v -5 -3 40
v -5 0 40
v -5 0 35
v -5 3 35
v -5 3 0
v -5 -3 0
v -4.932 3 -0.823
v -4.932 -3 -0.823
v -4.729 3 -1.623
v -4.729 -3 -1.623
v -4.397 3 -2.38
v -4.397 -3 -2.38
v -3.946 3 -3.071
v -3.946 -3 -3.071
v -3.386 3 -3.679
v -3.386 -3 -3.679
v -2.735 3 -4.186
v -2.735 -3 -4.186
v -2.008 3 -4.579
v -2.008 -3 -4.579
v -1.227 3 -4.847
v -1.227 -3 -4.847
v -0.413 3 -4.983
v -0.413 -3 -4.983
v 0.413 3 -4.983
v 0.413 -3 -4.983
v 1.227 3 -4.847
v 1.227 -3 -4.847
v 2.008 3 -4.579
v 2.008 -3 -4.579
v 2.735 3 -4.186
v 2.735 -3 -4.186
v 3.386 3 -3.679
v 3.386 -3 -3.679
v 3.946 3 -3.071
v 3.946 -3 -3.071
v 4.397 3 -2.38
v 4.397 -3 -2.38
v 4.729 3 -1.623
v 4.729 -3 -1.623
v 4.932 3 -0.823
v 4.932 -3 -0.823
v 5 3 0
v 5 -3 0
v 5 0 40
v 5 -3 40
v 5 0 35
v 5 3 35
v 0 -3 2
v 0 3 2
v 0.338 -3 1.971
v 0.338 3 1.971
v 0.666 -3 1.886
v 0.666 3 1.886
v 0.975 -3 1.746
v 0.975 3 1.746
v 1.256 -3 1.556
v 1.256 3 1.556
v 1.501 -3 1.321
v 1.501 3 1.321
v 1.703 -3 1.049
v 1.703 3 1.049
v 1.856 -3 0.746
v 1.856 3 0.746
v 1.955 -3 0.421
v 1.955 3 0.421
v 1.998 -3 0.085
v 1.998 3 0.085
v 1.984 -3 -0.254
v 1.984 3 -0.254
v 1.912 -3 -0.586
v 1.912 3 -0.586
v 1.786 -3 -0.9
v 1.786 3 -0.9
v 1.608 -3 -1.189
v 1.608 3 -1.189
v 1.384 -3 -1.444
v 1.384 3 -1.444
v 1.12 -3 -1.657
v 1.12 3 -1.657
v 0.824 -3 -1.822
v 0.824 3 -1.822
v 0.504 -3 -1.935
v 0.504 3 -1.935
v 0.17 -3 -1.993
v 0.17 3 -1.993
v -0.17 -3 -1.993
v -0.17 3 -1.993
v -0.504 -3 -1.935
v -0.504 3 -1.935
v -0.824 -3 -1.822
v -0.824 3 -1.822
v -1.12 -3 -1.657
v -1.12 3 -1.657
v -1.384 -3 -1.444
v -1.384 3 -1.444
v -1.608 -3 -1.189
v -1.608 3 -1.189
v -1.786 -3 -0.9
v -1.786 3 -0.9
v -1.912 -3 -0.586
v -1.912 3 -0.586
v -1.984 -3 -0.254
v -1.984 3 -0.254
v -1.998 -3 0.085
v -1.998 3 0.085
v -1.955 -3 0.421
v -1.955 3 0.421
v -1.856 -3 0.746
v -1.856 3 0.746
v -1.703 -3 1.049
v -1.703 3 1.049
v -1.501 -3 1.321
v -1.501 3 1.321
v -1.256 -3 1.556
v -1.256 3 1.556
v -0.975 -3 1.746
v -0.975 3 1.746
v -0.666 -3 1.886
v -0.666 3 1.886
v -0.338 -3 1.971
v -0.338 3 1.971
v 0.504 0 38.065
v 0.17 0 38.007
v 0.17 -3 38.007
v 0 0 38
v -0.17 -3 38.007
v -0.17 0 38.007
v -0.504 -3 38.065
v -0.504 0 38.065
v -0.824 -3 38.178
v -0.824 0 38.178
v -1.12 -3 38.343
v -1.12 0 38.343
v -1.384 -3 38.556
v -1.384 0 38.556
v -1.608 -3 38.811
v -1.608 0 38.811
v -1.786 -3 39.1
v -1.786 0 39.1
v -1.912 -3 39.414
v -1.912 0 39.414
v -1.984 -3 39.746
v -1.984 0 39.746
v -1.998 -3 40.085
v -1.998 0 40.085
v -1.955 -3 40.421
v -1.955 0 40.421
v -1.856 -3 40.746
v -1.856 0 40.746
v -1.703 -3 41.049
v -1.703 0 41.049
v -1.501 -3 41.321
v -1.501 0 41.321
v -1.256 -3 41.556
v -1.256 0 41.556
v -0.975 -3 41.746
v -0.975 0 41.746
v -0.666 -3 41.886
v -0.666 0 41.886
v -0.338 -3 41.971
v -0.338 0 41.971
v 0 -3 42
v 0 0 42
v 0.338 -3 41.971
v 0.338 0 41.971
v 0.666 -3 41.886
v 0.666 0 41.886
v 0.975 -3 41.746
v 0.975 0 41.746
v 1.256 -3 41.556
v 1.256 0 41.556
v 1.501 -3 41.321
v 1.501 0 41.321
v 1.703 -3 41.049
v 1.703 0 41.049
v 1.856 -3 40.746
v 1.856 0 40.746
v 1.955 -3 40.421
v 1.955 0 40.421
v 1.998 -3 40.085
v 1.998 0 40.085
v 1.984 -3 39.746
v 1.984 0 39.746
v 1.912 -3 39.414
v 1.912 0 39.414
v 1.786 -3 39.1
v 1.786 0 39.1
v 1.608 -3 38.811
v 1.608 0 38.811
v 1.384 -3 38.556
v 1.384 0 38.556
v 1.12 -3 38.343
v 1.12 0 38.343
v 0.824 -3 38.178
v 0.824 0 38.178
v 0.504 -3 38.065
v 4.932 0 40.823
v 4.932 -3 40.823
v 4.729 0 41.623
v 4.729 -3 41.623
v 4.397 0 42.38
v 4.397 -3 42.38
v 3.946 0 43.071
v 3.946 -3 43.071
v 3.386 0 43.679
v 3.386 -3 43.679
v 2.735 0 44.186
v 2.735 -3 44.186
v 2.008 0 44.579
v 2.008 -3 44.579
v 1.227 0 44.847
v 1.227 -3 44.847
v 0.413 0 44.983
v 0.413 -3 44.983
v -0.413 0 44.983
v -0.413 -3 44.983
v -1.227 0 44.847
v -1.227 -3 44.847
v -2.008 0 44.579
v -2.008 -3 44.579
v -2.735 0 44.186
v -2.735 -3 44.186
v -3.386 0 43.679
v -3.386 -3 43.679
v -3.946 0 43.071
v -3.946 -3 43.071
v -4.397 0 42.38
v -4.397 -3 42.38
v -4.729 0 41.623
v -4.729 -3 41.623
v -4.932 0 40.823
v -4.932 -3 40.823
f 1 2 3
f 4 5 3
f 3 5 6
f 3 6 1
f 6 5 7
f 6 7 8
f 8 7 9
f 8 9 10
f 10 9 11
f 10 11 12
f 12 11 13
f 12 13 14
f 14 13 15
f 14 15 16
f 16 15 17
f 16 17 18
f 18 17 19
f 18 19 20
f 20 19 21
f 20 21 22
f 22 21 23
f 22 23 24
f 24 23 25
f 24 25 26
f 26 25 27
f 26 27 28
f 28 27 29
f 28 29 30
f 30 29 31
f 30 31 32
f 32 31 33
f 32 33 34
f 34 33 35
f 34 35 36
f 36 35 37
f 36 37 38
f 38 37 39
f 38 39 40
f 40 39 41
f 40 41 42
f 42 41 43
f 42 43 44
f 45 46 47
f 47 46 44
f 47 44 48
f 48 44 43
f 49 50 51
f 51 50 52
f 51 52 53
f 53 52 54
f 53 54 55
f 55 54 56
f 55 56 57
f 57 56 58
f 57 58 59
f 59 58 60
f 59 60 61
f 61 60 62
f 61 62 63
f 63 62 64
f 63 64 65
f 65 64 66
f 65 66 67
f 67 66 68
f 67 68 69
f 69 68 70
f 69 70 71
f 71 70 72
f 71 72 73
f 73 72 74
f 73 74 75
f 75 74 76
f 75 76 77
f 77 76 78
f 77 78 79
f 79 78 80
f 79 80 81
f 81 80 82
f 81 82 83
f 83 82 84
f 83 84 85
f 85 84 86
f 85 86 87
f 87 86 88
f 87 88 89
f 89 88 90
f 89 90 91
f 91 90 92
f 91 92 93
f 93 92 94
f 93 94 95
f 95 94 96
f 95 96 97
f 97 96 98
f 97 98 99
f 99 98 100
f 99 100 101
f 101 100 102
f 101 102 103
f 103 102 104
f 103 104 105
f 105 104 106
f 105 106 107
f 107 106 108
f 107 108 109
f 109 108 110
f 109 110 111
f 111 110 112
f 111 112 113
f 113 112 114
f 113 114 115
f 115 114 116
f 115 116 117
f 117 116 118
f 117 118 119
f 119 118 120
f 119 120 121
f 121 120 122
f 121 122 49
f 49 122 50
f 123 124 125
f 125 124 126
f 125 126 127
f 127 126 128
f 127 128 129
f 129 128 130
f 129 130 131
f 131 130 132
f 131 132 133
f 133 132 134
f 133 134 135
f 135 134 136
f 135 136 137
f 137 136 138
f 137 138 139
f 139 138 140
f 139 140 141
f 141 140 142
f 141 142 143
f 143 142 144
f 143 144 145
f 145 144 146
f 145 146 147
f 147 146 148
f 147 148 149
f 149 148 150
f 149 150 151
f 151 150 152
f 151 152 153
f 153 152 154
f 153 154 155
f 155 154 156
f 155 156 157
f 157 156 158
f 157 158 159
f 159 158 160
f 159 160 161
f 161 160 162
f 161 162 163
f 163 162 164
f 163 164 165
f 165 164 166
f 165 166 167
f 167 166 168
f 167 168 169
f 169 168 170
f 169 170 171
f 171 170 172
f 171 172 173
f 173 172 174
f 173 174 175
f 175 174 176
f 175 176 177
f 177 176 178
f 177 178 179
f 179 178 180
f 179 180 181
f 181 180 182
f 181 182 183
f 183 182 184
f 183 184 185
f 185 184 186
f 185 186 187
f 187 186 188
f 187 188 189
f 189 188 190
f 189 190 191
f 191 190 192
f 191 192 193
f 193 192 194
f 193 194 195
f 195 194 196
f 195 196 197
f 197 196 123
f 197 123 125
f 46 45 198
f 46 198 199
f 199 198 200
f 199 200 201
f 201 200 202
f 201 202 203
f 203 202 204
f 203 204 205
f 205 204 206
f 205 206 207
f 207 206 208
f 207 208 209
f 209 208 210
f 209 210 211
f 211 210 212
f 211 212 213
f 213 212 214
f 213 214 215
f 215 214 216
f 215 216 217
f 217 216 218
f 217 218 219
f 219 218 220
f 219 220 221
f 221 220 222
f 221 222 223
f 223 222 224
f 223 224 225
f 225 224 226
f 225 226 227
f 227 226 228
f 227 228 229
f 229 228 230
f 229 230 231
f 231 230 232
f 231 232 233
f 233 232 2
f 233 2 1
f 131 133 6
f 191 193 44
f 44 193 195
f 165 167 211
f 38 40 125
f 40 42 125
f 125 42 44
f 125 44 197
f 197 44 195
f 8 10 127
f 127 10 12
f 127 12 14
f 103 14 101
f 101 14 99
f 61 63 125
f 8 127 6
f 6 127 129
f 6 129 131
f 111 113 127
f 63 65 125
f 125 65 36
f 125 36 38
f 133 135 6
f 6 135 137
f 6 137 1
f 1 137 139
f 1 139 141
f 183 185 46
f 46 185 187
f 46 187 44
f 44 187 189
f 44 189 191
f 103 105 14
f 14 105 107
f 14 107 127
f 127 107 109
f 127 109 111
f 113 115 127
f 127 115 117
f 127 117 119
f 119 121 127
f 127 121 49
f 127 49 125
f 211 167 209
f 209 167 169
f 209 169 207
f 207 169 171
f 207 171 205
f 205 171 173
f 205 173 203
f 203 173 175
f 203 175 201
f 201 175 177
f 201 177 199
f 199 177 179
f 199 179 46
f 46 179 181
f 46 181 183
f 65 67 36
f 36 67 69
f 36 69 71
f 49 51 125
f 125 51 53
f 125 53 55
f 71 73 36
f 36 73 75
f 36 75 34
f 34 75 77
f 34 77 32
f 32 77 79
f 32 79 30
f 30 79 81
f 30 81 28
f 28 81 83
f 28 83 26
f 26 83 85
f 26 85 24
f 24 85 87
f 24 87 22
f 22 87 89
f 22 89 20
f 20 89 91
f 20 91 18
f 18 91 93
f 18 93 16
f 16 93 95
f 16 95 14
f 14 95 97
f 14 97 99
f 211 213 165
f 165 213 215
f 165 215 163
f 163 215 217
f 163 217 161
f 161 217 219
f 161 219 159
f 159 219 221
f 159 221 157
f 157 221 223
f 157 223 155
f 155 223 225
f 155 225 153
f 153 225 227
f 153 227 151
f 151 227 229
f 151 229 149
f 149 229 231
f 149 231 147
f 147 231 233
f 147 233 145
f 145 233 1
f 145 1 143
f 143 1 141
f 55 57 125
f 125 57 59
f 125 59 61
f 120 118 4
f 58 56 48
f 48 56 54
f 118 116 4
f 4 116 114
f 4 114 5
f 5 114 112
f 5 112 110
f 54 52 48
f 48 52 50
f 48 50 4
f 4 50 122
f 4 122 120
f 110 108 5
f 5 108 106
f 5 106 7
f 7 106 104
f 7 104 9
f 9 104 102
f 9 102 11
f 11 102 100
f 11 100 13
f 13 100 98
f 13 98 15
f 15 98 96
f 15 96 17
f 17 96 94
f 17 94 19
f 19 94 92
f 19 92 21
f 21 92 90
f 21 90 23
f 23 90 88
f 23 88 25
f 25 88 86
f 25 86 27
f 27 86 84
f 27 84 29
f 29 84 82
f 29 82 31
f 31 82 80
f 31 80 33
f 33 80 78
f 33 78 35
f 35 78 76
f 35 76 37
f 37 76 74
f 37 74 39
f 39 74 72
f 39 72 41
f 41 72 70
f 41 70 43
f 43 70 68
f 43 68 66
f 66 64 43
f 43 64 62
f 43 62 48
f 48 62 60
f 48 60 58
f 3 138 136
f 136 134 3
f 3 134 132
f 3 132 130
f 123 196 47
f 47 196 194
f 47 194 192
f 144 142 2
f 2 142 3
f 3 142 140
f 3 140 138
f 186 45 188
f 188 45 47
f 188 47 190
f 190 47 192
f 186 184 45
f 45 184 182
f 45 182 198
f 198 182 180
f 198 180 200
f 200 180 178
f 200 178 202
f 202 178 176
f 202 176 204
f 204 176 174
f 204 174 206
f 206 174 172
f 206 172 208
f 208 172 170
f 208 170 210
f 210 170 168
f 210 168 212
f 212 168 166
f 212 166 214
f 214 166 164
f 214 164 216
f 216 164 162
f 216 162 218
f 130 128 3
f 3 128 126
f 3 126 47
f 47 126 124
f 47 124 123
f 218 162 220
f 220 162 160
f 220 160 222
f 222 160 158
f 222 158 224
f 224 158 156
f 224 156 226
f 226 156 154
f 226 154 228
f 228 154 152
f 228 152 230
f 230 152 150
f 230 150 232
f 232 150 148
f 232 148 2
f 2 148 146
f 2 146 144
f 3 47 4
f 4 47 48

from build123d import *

# Parameters (mm, degrees)
BOSS_EXTRU_1_DEPTH      = 3
BOSS_EXTRU_1_DEPTH_BACK = 3
ESQUISSE1_R             = 2
ESQUISSE2_W             = 10
ESQUISSE2_H             = 11.041575451
ENL_V_MAT_EXTRU_1_DEPTH = 3


with BuildPart() as part:
    # Esquisse1 → Boss.-Extru.1 (new, two sides: drawn at the far end of the back side and taken through both)
    with BuildSketch(Plane(origin=(0, 0, 0), x_dir=(1, 0, 0), z_dir=(0, 1, 0)).offset(-BOSS_EXTRU_1_DEPTH_BACK)):
        with BuildLine():
            Line((-5, 0), (-5, -40))
            ThreePointArc((-5, -40), (0, -45), (5, -40))
            Line((5, -40), (5, 0))
            ThreePointArc((5, 0), (0, 5), (-5, 0))
        make_face()
        with Locations((0, -40)):
            Circle(ESQUISSE1_R, mode=Mode.SUBTRACT)
        Circle(ESQUISSE1_R, mode=Mode.SUBTRACT)
    extrude(amount=BOSS_EXTRU_1_DEPTH + BOSS_EXTRU_1_DEPTH_BACK)

    # Esquisse2 → Enlèv. mat.-Extru.1 (cut)
    with BuildSketch(Plane(origin=(0, 3, 0), x_dir=(1, 0, 0), z_dir=(0, 1, 0))):
        with Locations((0, -40.520787725)):
            Rectangle(ESQUISSE2_W, ESQUISSE2_H)
    extrude(amount=-ENL_V_MAT_EXTRU_1_DEPTH, mode=Mode.SUBTRACT)


solid = part.part
